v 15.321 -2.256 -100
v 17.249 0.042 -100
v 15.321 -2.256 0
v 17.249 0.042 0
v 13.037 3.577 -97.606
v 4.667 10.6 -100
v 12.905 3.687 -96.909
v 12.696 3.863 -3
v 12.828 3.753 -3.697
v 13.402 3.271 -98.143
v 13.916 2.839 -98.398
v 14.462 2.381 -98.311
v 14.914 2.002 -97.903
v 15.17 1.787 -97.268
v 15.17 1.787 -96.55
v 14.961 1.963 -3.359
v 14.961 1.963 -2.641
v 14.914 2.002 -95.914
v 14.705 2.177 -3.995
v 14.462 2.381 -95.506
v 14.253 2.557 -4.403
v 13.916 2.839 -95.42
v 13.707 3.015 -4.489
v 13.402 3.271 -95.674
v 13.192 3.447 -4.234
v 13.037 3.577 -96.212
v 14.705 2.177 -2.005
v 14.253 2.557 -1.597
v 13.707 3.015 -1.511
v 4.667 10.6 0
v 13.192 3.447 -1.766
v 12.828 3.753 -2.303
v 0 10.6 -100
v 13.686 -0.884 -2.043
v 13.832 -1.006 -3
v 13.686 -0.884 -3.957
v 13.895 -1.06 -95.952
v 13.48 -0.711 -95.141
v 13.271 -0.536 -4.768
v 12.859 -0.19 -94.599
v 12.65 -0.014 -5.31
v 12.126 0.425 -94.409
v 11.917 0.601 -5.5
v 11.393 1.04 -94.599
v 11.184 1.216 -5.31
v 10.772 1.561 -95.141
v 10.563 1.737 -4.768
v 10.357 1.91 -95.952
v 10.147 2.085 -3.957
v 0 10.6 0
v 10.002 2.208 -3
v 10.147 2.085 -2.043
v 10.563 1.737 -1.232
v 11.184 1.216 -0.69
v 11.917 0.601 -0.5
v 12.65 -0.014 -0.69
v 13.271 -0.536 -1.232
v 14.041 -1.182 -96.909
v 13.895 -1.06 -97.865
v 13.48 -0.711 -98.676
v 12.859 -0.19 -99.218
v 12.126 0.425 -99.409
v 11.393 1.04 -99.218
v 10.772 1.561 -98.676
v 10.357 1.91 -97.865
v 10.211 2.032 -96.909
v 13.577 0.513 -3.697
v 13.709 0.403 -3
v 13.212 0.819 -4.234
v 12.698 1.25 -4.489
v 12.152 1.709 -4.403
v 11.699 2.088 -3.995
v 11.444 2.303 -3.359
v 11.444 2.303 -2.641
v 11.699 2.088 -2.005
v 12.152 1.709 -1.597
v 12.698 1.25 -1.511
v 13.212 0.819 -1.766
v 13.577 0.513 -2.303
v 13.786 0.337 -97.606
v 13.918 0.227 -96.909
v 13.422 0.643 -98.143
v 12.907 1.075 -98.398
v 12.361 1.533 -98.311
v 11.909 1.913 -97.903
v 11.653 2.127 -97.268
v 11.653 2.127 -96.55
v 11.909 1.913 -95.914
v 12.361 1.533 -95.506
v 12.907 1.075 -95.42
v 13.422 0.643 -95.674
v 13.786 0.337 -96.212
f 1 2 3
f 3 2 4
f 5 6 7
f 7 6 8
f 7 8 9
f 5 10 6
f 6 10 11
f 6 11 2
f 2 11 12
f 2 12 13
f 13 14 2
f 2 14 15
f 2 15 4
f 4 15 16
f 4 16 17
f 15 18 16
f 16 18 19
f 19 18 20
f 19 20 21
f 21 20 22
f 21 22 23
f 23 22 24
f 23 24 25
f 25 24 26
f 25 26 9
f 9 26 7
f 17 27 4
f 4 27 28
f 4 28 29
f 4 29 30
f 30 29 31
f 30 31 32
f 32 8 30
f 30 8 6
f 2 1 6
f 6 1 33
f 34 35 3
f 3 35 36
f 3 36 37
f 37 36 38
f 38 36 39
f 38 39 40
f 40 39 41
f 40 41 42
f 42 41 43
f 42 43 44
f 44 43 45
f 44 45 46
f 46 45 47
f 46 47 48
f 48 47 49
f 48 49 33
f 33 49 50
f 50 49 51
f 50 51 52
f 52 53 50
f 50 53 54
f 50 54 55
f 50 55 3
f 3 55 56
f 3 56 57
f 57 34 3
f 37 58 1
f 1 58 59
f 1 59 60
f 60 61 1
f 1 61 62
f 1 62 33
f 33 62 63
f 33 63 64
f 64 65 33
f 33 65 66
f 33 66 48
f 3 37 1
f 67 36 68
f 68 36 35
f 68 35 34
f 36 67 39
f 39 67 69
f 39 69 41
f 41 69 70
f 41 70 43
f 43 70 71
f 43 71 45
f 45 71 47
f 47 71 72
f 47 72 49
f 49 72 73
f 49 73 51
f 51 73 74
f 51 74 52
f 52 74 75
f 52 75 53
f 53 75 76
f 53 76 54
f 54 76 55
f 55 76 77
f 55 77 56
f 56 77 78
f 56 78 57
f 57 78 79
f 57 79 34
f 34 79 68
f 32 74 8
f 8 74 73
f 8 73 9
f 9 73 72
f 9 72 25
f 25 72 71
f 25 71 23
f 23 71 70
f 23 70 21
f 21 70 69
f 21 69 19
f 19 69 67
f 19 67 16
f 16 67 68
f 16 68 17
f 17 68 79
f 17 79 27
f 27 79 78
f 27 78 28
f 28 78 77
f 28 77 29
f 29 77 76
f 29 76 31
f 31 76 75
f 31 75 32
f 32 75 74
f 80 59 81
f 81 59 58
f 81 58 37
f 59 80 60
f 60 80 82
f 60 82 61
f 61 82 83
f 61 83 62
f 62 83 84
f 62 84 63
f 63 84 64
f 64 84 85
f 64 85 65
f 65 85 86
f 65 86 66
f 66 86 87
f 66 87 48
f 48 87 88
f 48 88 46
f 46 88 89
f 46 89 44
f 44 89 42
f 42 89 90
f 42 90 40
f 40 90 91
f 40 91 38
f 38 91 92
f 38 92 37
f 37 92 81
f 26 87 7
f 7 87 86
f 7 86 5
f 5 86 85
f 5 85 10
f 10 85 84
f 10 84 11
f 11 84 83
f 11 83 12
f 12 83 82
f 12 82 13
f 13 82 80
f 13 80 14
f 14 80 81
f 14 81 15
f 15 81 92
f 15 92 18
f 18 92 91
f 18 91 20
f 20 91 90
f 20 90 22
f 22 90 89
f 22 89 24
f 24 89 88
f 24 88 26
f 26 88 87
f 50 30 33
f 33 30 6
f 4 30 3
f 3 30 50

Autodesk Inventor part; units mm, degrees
ref_plane "YZ Plane" through (0, 0, 0) normal (1, 0, 0) x (0, 1, 0)
sketch "Sketch1" plane through (0, 0, 0) normal (0, 0, 1) x (1, 0, 0)
  line L0 (10.7451, 5.5) -> (50.1922, -27.6) projected
  line L1 (50.1922, -27.6) -> (100, -27.6) projected
  line L2 (100, -27.6) -> (100, -23.6) projected
  line L3 (100, -23.6) -> (83.9, -23.6) projected
  arc A0 (65.8, -5.5) -> (83.9, -23.6) centre (83.9, -5.5) ccw projected
  line L4 (65.8, -5.5) -> (65.8, 5.5) projected
  line L5 (65.8, 5.5) -> (10.7451, 5.5) projected
  line L6 (7.1699, 8.5) -> (10.7451, 5.5) projected
  line L7 (65.8, 5.5) -> (10.7451, 5.5) projected
  line L8 (65.8, 5.5) -> (65.8, 8.5) projected
  line L9 (65.8, 8.5) -> (7.1699, 8.5) projected
  circle A1 centre (83.9, -5.5) radius 16.1 projected
  line L10 (83.9, 10.6) -> (-17.1951, 10.6)
  line L11 (100, -5.5) -> (0, -5.5)
  line L12 (0, -5.5) -> (0, 10.6)
  line L13 (7.1699, 8.5) -> (4.6672, 10.6)
  line L14 (7.1699, 8.5) -> (5.2415, 6.2019)
  line L15 (5.2415, 6.2019) -> (0, 10.6)
  line L16 (0, 10.6) -> (22.9813, -8.6836)
  line L17 (22.9813, -8.6836) -> (24.9097, -6.3855)
  point P0 (0, 0)
  dimension "d0" = 100
  dimension "d1" = 3
  dimension "d2" = 30
extrude "Extrusion1" add sketch "Sketch1" against normal blind 100 contours L17 L16 L11 L0 | L11 L16 L14 L6 L0 | L14 L15 L10 L13
ref_plane "Work Plane1" through (8.1777, -6.0133, 8.6215) normal (0, -1, 0) x (0, 0, 1)
sketch "Sketch2" plane through (8.1777, -6.0133, 8.6215) normal (0, -1, 0) x (0, 0, 1)
  line L0 (-22.0032, -27.7487) -> (35.8312, 20.7819)
  line L1 (35.8312, 20.7819) -> (3.0626, 38.2053)
  line L2 (3.0626, 38.2053) -> (-26.1922, -24.5344)
  line L3 (-26.1922, -24.5344) -> (-22.0032, -27.7487)
  line L4 (-46.8404, -23.7111) -> (-15.3118, 43.9022)
  line L5 (-15.3118, 43.9022) -> (-51.9953, 38.492)
  line L6 (-51.9953, 38.492) -> (-51.9953, -22.5683)
  line L7 (-51.9953, -22.5683) -> (-46.8404, -23.7111)
  line L8 (-70.2281, -23.6979) -> (-65.0733, -22.5551)
  line L9 (-65.0733, -22.5551) -> (-65.0733, 38.4893)
  line L10 (-94.9551, 29.3293) -> (-70.2281, -23.6979)
  line L11 (-65.0733, 38.4893) -> (-94.9551, 29.3293)
  line L12 (-90.9709, -24.4596) -> (-115.5317, 28.2112)
  arc A0 (-115.5317, 28.2112) -> (-139.4308, 9.4739) centre (-87.2125, -32.5195) ccw
  line L13 (-139.4308, 9.4739) -> (-95.1598, -27.6739)
  line L14 (-95.1598, -27.6739) -> (-90.9709, -24.4596)
  point P0 (-8.6215, 8.1777)
  point P1 (-24.0977, -26.1415)
  point P2 (-49.4178, -23.1397)
  point P3 (-67.6507, -23.1265)
  point P4 (-93.0654, -26.0667)
ref_plane "Work Plane2" through (40.3431, -2.6133, -6) normal (0, -1, 0) x (1, 0, 0)
extrude "Extrusion2" cut sketch "Sketch2" against normal up to surface (3.4 mm away)
extrude "Extrusion3" cut sketch "Sketch2" along normal blind 1
sketch "Sketch3" plane through (15.747, -2.6133, 0) normal (0, -1, 0) x (1, 0, 0)
  line L0 (4.6672, 0) -> (4.6672, -11.8362) projected
  line L1 (0, 0) -> (4.6672, 0) projected
  line L2 (0, -9.66) -> (0, 0) projected
  line L3 (4.6672, -11.8362) -> (0, -9.66) projected
  line L4 (4.6672, -32.8682) -> (4.6672, -43.3737) projected
  line L5 (0, -30.6918) -> (4.6672, -32.8682) projected
  line L6 (0, -43.3737) -> (0, -30.6918) projected
  line L7 (4.6672, -43.3737) -> (0, -43.3737) projected
  line L8 (4.6672, -56.4518) -> (4.6672, -66.9512) projected
  line L9 (0, -56.4518) -> (4.6672, -56.4518) projected
  line L10 (0, -69.1275) -> (0, -56.4518) projected
  line L11 (4.6672, -66.9512) -> (0, -69.1275) projected
  line L12 (4.6672, -88.0491) -> (4.6672, -100) projected
  line L13 (0, -90.2254) -> (4.6672, -88.0491) projected
  line L14 (0, -100) -> (0, -90.2254) projected
  line L15 (4.6672, -100) -> (0, -100) projected
  line L16 (0, -90.2254) -> (12.0968, -84.5846)
  line L17 (0, -90.2254) -> (4.6672, -88.0491) projected
  line L18 (12.0968, -84.5846) -> (12.0968, -100)
  line L19 (4.6672, -100) -> (0, -100) projected
  line L20 (12.0968, -100) -> (0, -100)
  line L21 (8.636, -100) -> (8.636, -86.1984) projected
  line L22 (8.636, -86.1984) -> (9.1627, -85.9528) projected
  line L23 (9.1627, -64.8548) -> (9.1627, -85.9528) projected
  line L24 (9.1627, -64.8548) -> (8.636, -65.1005) projected
  line L25 (8.636, -65.1005) -> (8.636, -56.4518) projected
  line L26 (8.636, -56.4518) -> (9.1627, -56.4518) projected
  line L27 (9.1627, -43.3737) -> (9.1627, -56.4518) projected
  line L28 (9.1627, -43.3737) -> (8.636, -43.3737) projected
  line L29 (8.636, -43.3737) -> (8.636, -34.7188) projected
  line L30 (8.636, -34.7188) -> (9.1627, -34.9645) projected
  line L31 (9.1627, -13.9325) -> (9.1627, -34.9645) projected
  line L32 (9.1627, -13.9325) -> (8.636, -13.6868) projected
  line L33 (8.636, -13.6868) -> (8.636, 0) projected
  line L34 (7.2344, 0) -> (8.636, 0) projected
  line L35 (7.2344, 0) -> (7.2344, -100) projected
  line L36 (8.636, -100) -> (7.2344, -100) projected
  line L37 (0, -30.6918) -> (5.2437, -33.137) projected
  line L38 (5.2437, -33.137) -> (5.2437, -43.3737) projected
  line L39 (5.2437, -43.3737) -> (0, -43.3737) projected
  line L40 (0, -43.3737) -> (0, -30.6918) projected
  line L41 (5.2437, -66.6823) -> (0, -69.1275) projected
  line L42 (0, -69.1275) -> (0, -56.4518) projected
  line L43 (0, -56.4518) -> (5.2437, -56.4518) projected
  line L44 (5.2437, -56.4518) -> (5.2437, -66.6823) projected
  line L45 (5.2437, -87.7803) -> (5.2437, -100) projected
  line L46 (7.2344, -100) -> (5.2437, -100) projected
  line L47 (7.2344, 0) -> (7.2344, -100) projected
  line L48 (5.2437, 0) -> (7.2344, 0) projected
  line L49 (5.2437, 0) -> (5.2437, -12.1051) projected
  line L50 (5.2437, -12.1051) -> (0, -9.66) projected
  line L51 (0, -9.66) -> (0, 0) projected
  line L52 (-15.747, 0) -> (0, 0) projected
  line L53 (-15.747, 0) -> (-15.747, -100) projected
  line L54 (0, -100) -> (-15.747, -100) projected
  line L55 (0, -100) -> (0, -90.2254) projected
  line L56 (0, -90.2254) -> (5.2437, -87.7803) projected
  line L57 (4.6672, -66.9512) -> (0, -69.1275) projected
  line L58 (0, -69.1275) -> (9.1627, -64.8548)
  line L59 (9.1627, -56.4518) -> (4.6672, -56.4518) projected
  line L60 (9.1627, -56.4518) -> (9.1627, -64.8548)
  line L61 (0, -56.4518) -> (9.1627, -56.4518)
  line L62 (0, -43.3737) -> (9.1627, -43.3737)
  line L63 (8.636, -34.7188) -> (9.1627, -34.9645) projected
  line L64 (9.1627, -34.9645) -> (9.1627, -43.3737)
  line L65 (8.636, -43.3737) -> (8.636, -34.7188) projected
  line L66 (0, -30.6918) -> (4.6672, -32.8682) projected
  line L67 (0, -30.6918) -> (9.1627, -34.9645)
  line L68 (4.6672, -11.8362) -> (0, -9.66) projected
  line L69 (4.6672, -11.8362) -> (9.1627, -13.9325)
  line L70 (9.1627, -13.9325) -> (9.1627, 0)
  line L71 (9.1627, 0) -> (0, 0)
  line L72 (4.6672, 0) -> (-11.0798, 0) projected
  line L73 (8.9504, 0) -> (9.1627, -0.253) projected
  line L74 (9.1627, 0) -> (9.1627, -0.253) projected
  line L75 (8.9504, 0) -> (9.1627, 0) projected
  line L76 (9.1627, -99.5783) -> (8.8088, -100) projected
  line L77 (9.1627, -100) -> (8.8088, -100) projected
  line L78 (9.1627, -99.5783) -> (9.1627, -100) projected
  point P0 (-15.747, 0)
  point P1 (8.9504, 0)
  point P2 (5.2437, -12.1051)
  point P3 (7.2344, 0)
  point P4 (5.2437, -33.137)
  point P5 (5.2437, -43.3737)
  point P6 (5.2437, -66.6823)
  point P7 (5.2437, -87.7803)
  point P8 (5.2437, -100)
  point P9 (8.636, -100)
  point P10 (8.636, -86.1984)
extrude "Extrusion4" cut sketch "Sketch3" along normal through all contours L48 L35 L69 L49 | L34 L33 L69 L35 | L67 L29 L62 L35 | L35 L62 L38 L67 | L71 L70 L73 | L59 L25 L58 L35 | L35 L58 L44 L59 | L45 L16 L35 L20 | L16 L21 L20 L35 | L76 L78 L20
sketch "Sketch4" plane through (0, 10.6, -100) normal (-0.6427876, -0.7660444, 0) x (0.7660444, -0.6427876, 0)
  line L0 (30, 34.2459) -> (20.5562, 30.8725) projected
  line L1 (20.5562, 30.8725) -> (20.5562, 43.5482) projected
  line L2 (20.5562, 43.5482) -> (30, 43.5482) projected
  line L3 (30, 56.6263) -> (30, 43.5482) projected
  line L4 (30, 56.6263) -> (20.5562, 56.6263) projected
  line L5 (20.5562, 56.6263) -> (20.5562, 69.3082) projected
  line L6 (20.5562, 69.3082) -> (30, 65.9347) projected
  line L7 (30, 86.9667) -> (30, 65.9347) projected
  line L8 (30, 86.9667) -> (20.5562, 90.34) projected
  line L9 (20.5562, 90.34) -> (20.5562, 100) projected
  line L10 (0, 100) -> (20.5562, 100) projected
  line L11 (0, 100) -> (0, 0) projected
  line L12 (20.5562, 0) -> (0, 0) projected
  line L13 (20.5562, 0) -> (20.5562, 9.7746) projected
  line L14 (20.5562, 9.7746) -> (30, 13.148) projected
  line L15 (30, 34.2459) -> (30, 13.148) projected
  line L16 (73.894, 94) -> (30.9766, 94)
  line L17 (24.1315, 94) -> (11.5095, 94)
  line L18 (31.2695, 94) -> (24.1315, 94)
  line L19 (0, 100) -> (0, 0) projected
  line L20 (0, 50) -> (30, 50.0873)
  line L21 (20.5562, 100) -> (18.5562, 100)
  line L22 (18.5562, 100) -> (18.5562, 94)
  line L23 (18.5562, 94) -> (20.5562, 94)
  line L24 (20.5562, 94) -> (20.5562, 100)
  circle A0 centre (15.5562, 97) radius 3
  circle A1 centre (15.5562, 97) radius 1.5
  circle A2 centre (15.8294, 3.0913) radius 1.5
  point P0 (6.8135, 100)
  dimension "d11" = 2
  dimension "d12" = 3
extrude "Extrusion5" cut sketch "Sketch4" against normal blind 10 contours A1 | A2
chamfer "Chamfer1" distance 1 angle 45 2 edges at (10.9769, 1.3893, -96.9087) (10.7677, 1.5648, -3)
sketch "Szkic5" plane through (15.747, -2.6133, 0) normal (0, -1, 0) x (1, 0, 0)
  line L0 (4.6672, 0) -> (4.6672, -11.8362) projected
  line L1 (0, 0) -> (4.6672, 0) projected
  line L2 (0, -9.66) -> (0, 0) projected
  line L3 (4.6672, -11.8362) -> (0, -9.66) projected
  line L4 (4.6672, -32.8682) -> (4.6672, -43.3737) projected
  line L5 (0, -30.6918) -> (4.6672, -32.8682) projected
  line L6 (0, -43.3737) -> (0, -30.6918) projected
  line L7 (4.6672, -43.3737) -> (0, -43.3737) projected
  line L8 (4.6672, -56.4518) -> (4.6672, -66.9512) projected
  line L9 (0, -56.4518) -> (4.6672, -56.4518) projected
  line L10 (0, -69.1275) -> (0, -56.4518) projected
  line L11 (4.6672, -66.9512) -> (0, -69.1275) projected
  line L12 (4.6672, -88.0491) -> (4.6672, -100) projected
  line L13 (0, -90.2254) -> (4.6672, -88.0491) projected
  line L14 (0, -100) -> (0, -90.2254) projected
  line L15 (4.6672, -100) -> (0, -100) projected
  line L16 (4.6672, 0) -> (4.6672, -11.8362) projected
  line L17 (4.6672, 0) -> (-31.1129, 0)
  line L18 (-31.1129, 0) -> (-31.1129, -100)
  line L19 (-31.1129, -100) -> (4.6672, -100)
  line L20 (4.6672, -100) -> (4.6672, 0)
  line L21 (4.6672, -100) -> (0, -100) projected
  line L22 (4.6672, 0) -> (-11.0798, 0) projected
  line L23 (4.6672, 0) -> (18.0688, 0)
  line L24 (18.0688, 0) -> (18.0688, -100)
  line L25 (18.0688, -100) -> (4.6672, -100)
  line L26 (4.6672, -100) -> (4.6672, 0)
  point P0 (-15.747, 0)
  point P1 (4.6672, -100)
extrude "Wyciągnięcie proste6" cut sketch "Szkic5" along normal blind 10
ref_plane "Płaszczyzna konstrukcyjna3" through (19.0877, -1.5003, -6) normal (0, -1, 0) x (1, 0, 0)
extrude "Wyciągnięcie proste7" cut sketch "Szkic5" against normal up to surface (1.113 mm away)
sketch "Szkic6" plane through (0, 0, 0) normal (0, 0, 1) x (1, 0, 0)
  line L0 (14.4205, -1.5003) -> (19.0877, -1.5003) projected
  line L1 (19.0877, -1.5003) -> (4.6672, 10.6) projected
  line L2 (4.6672, 10.6) -> (0, 10.6) projected
  line L3 (0, 10.6) -> (14.4205, -1.5003) projected
  line L4 (0, 10.6) -> (15.3209, -2.2558)
  line L5 (15.3209, -2.2558) -> (17.2493, 0.0424)
  line L6 (19.0877, -1.5003) -> (4.6672, 10.6) projected
  point P0 (0, 0)
  point P1 (15.9548, -1.5003)
  dimension "d22" = 20
extrude "Wyciągnięcie proste8" cut sketch "Szkic6" against normal through all contours L5 L1 L0
extrude "Wyciągnięcie proste9" add sketch "Szkic6" against normal up to surface (100 mm away) contours L0 L5 L4
properties part number "strug" material "Steel, Alloy"
